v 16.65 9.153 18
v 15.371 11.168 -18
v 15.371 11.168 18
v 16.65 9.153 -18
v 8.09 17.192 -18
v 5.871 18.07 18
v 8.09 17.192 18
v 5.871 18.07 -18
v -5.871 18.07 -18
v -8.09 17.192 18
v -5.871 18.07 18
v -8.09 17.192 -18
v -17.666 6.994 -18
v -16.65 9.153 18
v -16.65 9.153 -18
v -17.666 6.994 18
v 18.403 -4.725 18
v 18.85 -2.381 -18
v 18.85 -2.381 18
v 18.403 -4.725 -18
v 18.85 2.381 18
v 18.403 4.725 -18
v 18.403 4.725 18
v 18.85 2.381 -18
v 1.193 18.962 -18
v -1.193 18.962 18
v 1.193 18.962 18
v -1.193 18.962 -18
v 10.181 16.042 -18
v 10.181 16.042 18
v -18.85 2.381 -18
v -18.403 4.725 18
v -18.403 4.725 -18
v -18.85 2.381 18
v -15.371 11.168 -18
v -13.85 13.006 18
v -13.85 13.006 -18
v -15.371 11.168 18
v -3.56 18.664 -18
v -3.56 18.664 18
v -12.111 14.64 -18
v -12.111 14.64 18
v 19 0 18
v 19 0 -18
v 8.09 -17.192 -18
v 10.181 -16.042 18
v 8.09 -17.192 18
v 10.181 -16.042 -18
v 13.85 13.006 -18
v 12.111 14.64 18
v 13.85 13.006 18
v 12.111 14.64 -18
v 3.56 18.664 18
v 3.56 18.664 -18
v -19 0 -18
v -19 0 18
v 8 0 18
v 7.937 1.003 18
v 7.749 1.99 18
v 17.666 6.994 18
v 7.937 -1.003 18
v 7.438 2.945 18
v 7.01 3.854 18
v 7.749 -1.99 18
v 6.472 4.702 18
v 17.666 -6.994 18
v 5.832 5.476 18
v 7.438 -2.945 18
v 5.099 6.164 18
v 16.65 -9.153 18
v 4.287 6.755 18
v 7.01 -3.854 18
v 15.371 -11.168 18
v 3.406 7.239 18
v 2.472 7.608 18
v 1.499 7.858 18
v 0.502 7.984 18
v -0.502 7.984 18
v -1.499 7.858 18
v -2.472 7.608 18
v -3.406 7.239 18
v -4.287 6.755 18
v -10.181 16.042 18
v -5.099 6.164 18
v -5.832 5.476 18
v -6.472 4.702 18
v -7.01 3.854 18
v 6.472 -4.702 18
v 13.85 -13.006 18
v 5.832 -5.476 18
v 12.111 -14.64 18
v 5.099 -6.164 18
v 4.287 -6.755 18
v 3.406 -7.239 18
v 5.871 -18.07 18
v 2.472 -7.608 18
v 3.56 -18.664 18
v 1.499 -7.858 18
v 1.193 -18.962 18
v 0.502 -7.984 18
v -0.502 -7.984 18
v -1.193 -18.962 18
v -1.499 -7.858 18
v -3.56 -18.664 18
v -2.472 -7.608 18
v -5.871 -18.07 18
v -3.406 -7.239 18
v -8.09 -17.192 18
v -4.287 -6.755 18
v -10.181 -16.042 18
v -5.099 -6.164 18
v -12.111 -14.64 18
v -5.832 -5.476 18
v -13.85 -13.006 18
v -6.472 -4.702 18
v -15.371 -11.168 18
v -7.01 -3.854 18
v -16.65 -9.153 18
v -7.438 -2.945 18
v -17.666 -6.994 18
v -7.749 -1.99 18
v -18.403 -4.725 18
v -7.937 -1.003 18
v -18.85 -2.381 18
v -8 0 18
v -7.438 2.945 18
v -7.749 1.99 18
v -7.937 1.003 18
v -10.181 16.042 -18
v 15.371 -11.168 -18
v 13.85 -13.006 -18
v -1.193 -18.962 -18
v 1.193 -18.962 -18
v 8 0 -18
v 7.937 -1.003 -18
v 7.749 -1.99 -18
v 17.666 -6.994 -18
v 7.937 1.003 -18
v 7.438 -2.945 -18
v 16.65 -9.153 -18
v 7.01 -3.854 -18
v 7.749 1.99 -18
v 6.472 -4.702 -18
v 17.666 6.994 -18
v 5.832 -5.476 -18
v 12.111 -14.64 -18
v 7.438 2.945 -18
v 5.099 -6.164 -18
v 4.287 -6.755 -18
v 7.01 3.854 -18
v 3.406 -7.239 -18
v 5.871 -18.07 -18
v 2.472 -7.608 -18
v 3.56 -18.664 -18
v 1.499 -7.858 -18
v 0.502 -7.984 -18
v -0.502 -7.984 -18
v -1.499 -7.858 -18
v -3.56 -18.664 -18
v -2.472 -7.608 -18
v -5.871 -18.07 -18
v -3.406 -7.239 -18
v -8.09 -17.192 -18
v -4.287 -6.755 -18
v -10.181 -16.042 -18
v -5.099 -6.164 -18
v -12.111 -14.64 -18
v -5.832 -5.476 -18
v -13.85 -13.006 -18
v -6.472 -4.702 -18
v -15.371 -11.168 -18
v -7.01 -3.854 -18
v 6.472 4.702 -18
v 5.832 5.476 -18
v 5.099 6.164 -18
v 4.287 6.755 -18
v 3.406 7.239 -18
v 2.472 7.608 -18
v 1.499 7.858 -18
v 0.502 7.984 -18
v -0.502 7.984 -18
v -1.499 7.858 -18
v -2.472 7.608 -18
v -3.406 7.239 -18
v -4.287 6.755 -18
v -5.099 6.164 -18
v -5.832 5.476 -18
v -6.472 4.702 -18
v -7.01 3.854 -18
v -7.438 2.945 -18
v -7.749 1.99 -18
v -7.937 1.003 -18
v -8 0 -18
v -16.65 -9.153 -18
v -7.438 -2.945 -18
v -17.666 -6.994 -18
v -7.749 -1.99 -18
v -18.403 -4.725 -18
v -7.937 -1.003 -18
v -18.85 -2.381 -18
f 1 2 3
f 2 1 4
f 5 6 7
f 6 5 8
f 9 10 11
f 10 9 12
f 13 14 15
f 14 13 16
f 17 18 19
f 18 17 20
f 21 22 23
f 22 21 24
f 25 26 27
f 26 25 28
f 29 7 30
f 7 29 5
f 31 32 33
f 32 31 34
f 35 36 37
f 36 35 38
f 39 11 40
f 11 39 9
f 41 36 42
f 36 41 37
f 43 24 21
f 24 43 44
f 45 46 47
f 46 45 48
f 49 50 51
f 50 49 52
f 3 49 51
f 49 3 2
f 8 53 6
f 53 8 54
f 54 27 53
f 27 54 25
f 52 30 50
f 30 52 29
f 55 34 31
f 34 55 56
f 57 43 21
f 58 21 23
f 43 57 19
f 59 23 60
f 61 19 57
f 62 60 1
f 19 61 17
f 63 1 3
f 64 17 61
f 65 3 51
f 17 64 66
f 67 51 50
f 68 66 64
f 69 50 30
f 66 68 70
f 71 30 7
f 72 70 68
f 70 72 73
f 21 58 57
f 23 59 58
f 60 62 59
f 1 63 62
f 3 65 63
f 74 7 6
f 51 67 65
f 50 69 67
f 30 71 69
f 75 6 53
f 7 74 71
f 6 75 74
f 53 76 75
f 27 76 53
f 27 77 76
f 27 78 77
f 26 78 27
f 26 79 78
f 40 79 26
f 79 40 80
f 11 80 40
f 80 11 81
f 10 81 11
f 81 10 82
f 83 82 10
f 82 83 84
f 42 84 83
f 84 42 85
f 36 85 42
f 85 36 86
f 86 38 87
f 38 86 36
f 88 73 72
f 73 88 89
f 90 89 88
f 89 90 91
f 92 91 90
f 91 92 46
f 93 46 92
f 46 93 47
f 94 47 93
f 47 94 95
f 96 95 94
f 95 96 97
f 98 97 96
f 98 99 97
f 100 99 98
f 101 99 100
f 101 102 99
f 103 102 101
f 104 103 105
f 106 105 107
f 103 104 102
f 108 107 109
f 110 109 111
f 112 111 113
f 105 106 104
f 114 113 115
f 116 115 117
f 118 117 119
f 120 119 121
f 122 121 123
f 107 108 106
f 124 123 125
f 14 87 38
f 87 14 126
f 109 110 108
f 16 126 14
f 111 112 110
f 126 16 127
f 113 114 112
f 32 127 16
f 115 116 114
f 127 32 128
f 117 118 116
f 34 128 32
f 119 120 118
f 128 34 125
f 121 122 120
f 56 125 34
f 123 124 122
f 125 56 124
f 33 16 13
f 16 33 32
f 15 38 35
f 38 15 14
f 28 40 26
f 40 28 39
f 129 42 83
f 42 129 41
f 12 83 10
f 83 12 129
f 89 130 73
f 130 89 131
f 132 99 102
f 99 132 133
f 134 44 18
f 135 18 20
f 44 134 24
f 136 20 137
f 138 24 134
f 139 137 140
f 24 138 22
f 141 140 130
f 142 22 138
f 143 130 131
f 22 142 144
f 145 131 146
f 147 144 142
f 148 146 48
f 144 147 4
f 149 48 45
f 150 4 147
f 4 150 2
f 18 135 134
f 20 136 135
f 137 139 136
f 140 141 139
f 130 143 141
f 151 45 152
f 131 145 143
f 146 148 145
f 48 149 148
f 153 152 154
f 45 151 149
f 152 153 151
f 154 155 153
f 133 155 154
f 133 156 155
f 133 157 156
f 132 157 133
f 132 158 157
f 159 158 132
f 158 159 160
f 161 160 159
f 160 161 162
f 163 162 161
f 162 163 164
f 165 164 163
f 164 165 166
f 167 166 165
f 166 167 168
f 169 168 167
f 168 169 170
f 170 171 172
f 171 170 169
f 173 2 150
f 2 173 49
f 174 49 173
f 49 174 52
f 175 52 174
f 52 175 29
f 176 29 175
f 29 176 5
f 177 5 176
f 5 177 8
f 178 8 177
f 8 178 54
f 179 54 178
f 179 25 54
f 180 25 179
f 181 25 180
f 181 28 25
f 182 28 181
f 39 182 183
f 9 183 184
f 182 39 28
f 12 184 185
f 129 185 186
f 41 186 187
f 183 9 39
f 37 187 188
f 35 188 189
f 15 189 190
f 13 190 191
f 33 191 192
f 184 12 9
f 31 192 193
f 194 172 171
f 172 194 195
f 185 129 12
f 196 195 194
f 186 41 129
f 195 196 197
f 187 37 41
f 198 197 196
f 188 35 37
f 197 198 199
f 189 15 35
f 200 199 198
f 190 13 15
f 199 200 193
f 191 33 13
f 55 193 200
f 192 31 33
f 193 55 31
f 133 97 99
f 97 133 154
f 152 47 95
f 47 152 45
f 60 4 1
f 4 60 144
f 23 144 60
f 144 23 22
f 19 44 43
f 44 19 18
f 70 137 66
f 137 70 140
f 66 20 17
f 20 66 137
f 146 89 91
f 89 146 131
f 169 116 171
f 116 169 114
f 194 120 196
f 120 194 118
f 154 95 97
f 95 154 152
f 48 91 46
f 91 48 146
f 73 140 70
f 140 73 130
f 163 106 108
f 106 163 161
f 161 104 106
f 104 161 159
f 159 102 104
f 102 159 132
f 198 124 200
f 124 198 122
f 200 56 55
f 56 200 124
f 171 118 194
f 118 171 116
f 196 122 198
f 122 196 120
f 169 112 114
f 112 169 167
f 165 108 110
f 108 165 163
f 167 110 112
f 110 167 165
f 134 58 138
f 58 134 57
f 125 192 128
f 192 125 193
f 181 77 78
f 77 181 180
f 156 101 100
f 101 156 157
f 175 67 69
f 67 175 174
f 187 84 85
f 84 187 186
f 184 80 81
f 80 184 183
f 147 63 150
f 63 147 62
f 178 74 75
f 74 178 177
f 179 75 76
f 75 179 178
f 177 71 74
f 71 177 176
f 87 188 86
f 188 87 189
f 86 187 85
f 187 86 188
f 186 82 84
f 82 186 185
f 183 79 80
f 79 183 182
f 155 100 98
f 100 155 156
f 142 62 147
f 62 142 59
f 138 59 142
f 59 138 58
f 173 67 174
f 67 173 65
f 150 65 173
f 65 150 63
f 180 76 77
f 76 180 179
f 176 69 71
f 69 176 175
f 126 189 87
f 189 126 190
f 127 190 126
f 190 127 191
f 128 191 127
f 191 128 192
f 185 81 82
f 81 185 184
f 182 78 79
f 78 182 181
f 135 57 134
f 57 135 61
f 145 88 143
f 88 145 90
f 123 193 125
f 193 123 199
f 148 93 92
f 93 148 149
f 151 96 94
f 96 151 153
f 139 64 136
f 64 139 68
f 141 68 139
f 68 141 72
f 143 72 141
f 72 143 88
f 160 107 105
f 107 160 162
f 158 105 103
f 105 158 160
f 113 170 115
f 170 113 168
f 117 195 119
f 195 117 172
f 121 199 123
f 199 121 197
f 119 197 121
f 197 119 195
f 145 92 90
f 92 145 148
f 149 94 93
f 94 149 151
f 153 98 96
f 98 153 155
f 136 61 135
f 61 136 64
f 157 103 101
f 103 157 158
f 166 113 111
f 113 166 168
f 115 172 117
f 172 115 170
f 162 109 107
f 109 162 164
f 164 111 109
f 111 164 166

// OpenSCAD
$fn = 50;


difference() {
	union() {
		translate(v = [0, 0, -18.0000000000]) {
			cylinder(h = 36, r = 19.0000000000);
		}
	}
	union() {
		translate(v = [0, 0, -100.0000000000]) {
			cylinder(h = 200, r = 8);
		}
	}
}
